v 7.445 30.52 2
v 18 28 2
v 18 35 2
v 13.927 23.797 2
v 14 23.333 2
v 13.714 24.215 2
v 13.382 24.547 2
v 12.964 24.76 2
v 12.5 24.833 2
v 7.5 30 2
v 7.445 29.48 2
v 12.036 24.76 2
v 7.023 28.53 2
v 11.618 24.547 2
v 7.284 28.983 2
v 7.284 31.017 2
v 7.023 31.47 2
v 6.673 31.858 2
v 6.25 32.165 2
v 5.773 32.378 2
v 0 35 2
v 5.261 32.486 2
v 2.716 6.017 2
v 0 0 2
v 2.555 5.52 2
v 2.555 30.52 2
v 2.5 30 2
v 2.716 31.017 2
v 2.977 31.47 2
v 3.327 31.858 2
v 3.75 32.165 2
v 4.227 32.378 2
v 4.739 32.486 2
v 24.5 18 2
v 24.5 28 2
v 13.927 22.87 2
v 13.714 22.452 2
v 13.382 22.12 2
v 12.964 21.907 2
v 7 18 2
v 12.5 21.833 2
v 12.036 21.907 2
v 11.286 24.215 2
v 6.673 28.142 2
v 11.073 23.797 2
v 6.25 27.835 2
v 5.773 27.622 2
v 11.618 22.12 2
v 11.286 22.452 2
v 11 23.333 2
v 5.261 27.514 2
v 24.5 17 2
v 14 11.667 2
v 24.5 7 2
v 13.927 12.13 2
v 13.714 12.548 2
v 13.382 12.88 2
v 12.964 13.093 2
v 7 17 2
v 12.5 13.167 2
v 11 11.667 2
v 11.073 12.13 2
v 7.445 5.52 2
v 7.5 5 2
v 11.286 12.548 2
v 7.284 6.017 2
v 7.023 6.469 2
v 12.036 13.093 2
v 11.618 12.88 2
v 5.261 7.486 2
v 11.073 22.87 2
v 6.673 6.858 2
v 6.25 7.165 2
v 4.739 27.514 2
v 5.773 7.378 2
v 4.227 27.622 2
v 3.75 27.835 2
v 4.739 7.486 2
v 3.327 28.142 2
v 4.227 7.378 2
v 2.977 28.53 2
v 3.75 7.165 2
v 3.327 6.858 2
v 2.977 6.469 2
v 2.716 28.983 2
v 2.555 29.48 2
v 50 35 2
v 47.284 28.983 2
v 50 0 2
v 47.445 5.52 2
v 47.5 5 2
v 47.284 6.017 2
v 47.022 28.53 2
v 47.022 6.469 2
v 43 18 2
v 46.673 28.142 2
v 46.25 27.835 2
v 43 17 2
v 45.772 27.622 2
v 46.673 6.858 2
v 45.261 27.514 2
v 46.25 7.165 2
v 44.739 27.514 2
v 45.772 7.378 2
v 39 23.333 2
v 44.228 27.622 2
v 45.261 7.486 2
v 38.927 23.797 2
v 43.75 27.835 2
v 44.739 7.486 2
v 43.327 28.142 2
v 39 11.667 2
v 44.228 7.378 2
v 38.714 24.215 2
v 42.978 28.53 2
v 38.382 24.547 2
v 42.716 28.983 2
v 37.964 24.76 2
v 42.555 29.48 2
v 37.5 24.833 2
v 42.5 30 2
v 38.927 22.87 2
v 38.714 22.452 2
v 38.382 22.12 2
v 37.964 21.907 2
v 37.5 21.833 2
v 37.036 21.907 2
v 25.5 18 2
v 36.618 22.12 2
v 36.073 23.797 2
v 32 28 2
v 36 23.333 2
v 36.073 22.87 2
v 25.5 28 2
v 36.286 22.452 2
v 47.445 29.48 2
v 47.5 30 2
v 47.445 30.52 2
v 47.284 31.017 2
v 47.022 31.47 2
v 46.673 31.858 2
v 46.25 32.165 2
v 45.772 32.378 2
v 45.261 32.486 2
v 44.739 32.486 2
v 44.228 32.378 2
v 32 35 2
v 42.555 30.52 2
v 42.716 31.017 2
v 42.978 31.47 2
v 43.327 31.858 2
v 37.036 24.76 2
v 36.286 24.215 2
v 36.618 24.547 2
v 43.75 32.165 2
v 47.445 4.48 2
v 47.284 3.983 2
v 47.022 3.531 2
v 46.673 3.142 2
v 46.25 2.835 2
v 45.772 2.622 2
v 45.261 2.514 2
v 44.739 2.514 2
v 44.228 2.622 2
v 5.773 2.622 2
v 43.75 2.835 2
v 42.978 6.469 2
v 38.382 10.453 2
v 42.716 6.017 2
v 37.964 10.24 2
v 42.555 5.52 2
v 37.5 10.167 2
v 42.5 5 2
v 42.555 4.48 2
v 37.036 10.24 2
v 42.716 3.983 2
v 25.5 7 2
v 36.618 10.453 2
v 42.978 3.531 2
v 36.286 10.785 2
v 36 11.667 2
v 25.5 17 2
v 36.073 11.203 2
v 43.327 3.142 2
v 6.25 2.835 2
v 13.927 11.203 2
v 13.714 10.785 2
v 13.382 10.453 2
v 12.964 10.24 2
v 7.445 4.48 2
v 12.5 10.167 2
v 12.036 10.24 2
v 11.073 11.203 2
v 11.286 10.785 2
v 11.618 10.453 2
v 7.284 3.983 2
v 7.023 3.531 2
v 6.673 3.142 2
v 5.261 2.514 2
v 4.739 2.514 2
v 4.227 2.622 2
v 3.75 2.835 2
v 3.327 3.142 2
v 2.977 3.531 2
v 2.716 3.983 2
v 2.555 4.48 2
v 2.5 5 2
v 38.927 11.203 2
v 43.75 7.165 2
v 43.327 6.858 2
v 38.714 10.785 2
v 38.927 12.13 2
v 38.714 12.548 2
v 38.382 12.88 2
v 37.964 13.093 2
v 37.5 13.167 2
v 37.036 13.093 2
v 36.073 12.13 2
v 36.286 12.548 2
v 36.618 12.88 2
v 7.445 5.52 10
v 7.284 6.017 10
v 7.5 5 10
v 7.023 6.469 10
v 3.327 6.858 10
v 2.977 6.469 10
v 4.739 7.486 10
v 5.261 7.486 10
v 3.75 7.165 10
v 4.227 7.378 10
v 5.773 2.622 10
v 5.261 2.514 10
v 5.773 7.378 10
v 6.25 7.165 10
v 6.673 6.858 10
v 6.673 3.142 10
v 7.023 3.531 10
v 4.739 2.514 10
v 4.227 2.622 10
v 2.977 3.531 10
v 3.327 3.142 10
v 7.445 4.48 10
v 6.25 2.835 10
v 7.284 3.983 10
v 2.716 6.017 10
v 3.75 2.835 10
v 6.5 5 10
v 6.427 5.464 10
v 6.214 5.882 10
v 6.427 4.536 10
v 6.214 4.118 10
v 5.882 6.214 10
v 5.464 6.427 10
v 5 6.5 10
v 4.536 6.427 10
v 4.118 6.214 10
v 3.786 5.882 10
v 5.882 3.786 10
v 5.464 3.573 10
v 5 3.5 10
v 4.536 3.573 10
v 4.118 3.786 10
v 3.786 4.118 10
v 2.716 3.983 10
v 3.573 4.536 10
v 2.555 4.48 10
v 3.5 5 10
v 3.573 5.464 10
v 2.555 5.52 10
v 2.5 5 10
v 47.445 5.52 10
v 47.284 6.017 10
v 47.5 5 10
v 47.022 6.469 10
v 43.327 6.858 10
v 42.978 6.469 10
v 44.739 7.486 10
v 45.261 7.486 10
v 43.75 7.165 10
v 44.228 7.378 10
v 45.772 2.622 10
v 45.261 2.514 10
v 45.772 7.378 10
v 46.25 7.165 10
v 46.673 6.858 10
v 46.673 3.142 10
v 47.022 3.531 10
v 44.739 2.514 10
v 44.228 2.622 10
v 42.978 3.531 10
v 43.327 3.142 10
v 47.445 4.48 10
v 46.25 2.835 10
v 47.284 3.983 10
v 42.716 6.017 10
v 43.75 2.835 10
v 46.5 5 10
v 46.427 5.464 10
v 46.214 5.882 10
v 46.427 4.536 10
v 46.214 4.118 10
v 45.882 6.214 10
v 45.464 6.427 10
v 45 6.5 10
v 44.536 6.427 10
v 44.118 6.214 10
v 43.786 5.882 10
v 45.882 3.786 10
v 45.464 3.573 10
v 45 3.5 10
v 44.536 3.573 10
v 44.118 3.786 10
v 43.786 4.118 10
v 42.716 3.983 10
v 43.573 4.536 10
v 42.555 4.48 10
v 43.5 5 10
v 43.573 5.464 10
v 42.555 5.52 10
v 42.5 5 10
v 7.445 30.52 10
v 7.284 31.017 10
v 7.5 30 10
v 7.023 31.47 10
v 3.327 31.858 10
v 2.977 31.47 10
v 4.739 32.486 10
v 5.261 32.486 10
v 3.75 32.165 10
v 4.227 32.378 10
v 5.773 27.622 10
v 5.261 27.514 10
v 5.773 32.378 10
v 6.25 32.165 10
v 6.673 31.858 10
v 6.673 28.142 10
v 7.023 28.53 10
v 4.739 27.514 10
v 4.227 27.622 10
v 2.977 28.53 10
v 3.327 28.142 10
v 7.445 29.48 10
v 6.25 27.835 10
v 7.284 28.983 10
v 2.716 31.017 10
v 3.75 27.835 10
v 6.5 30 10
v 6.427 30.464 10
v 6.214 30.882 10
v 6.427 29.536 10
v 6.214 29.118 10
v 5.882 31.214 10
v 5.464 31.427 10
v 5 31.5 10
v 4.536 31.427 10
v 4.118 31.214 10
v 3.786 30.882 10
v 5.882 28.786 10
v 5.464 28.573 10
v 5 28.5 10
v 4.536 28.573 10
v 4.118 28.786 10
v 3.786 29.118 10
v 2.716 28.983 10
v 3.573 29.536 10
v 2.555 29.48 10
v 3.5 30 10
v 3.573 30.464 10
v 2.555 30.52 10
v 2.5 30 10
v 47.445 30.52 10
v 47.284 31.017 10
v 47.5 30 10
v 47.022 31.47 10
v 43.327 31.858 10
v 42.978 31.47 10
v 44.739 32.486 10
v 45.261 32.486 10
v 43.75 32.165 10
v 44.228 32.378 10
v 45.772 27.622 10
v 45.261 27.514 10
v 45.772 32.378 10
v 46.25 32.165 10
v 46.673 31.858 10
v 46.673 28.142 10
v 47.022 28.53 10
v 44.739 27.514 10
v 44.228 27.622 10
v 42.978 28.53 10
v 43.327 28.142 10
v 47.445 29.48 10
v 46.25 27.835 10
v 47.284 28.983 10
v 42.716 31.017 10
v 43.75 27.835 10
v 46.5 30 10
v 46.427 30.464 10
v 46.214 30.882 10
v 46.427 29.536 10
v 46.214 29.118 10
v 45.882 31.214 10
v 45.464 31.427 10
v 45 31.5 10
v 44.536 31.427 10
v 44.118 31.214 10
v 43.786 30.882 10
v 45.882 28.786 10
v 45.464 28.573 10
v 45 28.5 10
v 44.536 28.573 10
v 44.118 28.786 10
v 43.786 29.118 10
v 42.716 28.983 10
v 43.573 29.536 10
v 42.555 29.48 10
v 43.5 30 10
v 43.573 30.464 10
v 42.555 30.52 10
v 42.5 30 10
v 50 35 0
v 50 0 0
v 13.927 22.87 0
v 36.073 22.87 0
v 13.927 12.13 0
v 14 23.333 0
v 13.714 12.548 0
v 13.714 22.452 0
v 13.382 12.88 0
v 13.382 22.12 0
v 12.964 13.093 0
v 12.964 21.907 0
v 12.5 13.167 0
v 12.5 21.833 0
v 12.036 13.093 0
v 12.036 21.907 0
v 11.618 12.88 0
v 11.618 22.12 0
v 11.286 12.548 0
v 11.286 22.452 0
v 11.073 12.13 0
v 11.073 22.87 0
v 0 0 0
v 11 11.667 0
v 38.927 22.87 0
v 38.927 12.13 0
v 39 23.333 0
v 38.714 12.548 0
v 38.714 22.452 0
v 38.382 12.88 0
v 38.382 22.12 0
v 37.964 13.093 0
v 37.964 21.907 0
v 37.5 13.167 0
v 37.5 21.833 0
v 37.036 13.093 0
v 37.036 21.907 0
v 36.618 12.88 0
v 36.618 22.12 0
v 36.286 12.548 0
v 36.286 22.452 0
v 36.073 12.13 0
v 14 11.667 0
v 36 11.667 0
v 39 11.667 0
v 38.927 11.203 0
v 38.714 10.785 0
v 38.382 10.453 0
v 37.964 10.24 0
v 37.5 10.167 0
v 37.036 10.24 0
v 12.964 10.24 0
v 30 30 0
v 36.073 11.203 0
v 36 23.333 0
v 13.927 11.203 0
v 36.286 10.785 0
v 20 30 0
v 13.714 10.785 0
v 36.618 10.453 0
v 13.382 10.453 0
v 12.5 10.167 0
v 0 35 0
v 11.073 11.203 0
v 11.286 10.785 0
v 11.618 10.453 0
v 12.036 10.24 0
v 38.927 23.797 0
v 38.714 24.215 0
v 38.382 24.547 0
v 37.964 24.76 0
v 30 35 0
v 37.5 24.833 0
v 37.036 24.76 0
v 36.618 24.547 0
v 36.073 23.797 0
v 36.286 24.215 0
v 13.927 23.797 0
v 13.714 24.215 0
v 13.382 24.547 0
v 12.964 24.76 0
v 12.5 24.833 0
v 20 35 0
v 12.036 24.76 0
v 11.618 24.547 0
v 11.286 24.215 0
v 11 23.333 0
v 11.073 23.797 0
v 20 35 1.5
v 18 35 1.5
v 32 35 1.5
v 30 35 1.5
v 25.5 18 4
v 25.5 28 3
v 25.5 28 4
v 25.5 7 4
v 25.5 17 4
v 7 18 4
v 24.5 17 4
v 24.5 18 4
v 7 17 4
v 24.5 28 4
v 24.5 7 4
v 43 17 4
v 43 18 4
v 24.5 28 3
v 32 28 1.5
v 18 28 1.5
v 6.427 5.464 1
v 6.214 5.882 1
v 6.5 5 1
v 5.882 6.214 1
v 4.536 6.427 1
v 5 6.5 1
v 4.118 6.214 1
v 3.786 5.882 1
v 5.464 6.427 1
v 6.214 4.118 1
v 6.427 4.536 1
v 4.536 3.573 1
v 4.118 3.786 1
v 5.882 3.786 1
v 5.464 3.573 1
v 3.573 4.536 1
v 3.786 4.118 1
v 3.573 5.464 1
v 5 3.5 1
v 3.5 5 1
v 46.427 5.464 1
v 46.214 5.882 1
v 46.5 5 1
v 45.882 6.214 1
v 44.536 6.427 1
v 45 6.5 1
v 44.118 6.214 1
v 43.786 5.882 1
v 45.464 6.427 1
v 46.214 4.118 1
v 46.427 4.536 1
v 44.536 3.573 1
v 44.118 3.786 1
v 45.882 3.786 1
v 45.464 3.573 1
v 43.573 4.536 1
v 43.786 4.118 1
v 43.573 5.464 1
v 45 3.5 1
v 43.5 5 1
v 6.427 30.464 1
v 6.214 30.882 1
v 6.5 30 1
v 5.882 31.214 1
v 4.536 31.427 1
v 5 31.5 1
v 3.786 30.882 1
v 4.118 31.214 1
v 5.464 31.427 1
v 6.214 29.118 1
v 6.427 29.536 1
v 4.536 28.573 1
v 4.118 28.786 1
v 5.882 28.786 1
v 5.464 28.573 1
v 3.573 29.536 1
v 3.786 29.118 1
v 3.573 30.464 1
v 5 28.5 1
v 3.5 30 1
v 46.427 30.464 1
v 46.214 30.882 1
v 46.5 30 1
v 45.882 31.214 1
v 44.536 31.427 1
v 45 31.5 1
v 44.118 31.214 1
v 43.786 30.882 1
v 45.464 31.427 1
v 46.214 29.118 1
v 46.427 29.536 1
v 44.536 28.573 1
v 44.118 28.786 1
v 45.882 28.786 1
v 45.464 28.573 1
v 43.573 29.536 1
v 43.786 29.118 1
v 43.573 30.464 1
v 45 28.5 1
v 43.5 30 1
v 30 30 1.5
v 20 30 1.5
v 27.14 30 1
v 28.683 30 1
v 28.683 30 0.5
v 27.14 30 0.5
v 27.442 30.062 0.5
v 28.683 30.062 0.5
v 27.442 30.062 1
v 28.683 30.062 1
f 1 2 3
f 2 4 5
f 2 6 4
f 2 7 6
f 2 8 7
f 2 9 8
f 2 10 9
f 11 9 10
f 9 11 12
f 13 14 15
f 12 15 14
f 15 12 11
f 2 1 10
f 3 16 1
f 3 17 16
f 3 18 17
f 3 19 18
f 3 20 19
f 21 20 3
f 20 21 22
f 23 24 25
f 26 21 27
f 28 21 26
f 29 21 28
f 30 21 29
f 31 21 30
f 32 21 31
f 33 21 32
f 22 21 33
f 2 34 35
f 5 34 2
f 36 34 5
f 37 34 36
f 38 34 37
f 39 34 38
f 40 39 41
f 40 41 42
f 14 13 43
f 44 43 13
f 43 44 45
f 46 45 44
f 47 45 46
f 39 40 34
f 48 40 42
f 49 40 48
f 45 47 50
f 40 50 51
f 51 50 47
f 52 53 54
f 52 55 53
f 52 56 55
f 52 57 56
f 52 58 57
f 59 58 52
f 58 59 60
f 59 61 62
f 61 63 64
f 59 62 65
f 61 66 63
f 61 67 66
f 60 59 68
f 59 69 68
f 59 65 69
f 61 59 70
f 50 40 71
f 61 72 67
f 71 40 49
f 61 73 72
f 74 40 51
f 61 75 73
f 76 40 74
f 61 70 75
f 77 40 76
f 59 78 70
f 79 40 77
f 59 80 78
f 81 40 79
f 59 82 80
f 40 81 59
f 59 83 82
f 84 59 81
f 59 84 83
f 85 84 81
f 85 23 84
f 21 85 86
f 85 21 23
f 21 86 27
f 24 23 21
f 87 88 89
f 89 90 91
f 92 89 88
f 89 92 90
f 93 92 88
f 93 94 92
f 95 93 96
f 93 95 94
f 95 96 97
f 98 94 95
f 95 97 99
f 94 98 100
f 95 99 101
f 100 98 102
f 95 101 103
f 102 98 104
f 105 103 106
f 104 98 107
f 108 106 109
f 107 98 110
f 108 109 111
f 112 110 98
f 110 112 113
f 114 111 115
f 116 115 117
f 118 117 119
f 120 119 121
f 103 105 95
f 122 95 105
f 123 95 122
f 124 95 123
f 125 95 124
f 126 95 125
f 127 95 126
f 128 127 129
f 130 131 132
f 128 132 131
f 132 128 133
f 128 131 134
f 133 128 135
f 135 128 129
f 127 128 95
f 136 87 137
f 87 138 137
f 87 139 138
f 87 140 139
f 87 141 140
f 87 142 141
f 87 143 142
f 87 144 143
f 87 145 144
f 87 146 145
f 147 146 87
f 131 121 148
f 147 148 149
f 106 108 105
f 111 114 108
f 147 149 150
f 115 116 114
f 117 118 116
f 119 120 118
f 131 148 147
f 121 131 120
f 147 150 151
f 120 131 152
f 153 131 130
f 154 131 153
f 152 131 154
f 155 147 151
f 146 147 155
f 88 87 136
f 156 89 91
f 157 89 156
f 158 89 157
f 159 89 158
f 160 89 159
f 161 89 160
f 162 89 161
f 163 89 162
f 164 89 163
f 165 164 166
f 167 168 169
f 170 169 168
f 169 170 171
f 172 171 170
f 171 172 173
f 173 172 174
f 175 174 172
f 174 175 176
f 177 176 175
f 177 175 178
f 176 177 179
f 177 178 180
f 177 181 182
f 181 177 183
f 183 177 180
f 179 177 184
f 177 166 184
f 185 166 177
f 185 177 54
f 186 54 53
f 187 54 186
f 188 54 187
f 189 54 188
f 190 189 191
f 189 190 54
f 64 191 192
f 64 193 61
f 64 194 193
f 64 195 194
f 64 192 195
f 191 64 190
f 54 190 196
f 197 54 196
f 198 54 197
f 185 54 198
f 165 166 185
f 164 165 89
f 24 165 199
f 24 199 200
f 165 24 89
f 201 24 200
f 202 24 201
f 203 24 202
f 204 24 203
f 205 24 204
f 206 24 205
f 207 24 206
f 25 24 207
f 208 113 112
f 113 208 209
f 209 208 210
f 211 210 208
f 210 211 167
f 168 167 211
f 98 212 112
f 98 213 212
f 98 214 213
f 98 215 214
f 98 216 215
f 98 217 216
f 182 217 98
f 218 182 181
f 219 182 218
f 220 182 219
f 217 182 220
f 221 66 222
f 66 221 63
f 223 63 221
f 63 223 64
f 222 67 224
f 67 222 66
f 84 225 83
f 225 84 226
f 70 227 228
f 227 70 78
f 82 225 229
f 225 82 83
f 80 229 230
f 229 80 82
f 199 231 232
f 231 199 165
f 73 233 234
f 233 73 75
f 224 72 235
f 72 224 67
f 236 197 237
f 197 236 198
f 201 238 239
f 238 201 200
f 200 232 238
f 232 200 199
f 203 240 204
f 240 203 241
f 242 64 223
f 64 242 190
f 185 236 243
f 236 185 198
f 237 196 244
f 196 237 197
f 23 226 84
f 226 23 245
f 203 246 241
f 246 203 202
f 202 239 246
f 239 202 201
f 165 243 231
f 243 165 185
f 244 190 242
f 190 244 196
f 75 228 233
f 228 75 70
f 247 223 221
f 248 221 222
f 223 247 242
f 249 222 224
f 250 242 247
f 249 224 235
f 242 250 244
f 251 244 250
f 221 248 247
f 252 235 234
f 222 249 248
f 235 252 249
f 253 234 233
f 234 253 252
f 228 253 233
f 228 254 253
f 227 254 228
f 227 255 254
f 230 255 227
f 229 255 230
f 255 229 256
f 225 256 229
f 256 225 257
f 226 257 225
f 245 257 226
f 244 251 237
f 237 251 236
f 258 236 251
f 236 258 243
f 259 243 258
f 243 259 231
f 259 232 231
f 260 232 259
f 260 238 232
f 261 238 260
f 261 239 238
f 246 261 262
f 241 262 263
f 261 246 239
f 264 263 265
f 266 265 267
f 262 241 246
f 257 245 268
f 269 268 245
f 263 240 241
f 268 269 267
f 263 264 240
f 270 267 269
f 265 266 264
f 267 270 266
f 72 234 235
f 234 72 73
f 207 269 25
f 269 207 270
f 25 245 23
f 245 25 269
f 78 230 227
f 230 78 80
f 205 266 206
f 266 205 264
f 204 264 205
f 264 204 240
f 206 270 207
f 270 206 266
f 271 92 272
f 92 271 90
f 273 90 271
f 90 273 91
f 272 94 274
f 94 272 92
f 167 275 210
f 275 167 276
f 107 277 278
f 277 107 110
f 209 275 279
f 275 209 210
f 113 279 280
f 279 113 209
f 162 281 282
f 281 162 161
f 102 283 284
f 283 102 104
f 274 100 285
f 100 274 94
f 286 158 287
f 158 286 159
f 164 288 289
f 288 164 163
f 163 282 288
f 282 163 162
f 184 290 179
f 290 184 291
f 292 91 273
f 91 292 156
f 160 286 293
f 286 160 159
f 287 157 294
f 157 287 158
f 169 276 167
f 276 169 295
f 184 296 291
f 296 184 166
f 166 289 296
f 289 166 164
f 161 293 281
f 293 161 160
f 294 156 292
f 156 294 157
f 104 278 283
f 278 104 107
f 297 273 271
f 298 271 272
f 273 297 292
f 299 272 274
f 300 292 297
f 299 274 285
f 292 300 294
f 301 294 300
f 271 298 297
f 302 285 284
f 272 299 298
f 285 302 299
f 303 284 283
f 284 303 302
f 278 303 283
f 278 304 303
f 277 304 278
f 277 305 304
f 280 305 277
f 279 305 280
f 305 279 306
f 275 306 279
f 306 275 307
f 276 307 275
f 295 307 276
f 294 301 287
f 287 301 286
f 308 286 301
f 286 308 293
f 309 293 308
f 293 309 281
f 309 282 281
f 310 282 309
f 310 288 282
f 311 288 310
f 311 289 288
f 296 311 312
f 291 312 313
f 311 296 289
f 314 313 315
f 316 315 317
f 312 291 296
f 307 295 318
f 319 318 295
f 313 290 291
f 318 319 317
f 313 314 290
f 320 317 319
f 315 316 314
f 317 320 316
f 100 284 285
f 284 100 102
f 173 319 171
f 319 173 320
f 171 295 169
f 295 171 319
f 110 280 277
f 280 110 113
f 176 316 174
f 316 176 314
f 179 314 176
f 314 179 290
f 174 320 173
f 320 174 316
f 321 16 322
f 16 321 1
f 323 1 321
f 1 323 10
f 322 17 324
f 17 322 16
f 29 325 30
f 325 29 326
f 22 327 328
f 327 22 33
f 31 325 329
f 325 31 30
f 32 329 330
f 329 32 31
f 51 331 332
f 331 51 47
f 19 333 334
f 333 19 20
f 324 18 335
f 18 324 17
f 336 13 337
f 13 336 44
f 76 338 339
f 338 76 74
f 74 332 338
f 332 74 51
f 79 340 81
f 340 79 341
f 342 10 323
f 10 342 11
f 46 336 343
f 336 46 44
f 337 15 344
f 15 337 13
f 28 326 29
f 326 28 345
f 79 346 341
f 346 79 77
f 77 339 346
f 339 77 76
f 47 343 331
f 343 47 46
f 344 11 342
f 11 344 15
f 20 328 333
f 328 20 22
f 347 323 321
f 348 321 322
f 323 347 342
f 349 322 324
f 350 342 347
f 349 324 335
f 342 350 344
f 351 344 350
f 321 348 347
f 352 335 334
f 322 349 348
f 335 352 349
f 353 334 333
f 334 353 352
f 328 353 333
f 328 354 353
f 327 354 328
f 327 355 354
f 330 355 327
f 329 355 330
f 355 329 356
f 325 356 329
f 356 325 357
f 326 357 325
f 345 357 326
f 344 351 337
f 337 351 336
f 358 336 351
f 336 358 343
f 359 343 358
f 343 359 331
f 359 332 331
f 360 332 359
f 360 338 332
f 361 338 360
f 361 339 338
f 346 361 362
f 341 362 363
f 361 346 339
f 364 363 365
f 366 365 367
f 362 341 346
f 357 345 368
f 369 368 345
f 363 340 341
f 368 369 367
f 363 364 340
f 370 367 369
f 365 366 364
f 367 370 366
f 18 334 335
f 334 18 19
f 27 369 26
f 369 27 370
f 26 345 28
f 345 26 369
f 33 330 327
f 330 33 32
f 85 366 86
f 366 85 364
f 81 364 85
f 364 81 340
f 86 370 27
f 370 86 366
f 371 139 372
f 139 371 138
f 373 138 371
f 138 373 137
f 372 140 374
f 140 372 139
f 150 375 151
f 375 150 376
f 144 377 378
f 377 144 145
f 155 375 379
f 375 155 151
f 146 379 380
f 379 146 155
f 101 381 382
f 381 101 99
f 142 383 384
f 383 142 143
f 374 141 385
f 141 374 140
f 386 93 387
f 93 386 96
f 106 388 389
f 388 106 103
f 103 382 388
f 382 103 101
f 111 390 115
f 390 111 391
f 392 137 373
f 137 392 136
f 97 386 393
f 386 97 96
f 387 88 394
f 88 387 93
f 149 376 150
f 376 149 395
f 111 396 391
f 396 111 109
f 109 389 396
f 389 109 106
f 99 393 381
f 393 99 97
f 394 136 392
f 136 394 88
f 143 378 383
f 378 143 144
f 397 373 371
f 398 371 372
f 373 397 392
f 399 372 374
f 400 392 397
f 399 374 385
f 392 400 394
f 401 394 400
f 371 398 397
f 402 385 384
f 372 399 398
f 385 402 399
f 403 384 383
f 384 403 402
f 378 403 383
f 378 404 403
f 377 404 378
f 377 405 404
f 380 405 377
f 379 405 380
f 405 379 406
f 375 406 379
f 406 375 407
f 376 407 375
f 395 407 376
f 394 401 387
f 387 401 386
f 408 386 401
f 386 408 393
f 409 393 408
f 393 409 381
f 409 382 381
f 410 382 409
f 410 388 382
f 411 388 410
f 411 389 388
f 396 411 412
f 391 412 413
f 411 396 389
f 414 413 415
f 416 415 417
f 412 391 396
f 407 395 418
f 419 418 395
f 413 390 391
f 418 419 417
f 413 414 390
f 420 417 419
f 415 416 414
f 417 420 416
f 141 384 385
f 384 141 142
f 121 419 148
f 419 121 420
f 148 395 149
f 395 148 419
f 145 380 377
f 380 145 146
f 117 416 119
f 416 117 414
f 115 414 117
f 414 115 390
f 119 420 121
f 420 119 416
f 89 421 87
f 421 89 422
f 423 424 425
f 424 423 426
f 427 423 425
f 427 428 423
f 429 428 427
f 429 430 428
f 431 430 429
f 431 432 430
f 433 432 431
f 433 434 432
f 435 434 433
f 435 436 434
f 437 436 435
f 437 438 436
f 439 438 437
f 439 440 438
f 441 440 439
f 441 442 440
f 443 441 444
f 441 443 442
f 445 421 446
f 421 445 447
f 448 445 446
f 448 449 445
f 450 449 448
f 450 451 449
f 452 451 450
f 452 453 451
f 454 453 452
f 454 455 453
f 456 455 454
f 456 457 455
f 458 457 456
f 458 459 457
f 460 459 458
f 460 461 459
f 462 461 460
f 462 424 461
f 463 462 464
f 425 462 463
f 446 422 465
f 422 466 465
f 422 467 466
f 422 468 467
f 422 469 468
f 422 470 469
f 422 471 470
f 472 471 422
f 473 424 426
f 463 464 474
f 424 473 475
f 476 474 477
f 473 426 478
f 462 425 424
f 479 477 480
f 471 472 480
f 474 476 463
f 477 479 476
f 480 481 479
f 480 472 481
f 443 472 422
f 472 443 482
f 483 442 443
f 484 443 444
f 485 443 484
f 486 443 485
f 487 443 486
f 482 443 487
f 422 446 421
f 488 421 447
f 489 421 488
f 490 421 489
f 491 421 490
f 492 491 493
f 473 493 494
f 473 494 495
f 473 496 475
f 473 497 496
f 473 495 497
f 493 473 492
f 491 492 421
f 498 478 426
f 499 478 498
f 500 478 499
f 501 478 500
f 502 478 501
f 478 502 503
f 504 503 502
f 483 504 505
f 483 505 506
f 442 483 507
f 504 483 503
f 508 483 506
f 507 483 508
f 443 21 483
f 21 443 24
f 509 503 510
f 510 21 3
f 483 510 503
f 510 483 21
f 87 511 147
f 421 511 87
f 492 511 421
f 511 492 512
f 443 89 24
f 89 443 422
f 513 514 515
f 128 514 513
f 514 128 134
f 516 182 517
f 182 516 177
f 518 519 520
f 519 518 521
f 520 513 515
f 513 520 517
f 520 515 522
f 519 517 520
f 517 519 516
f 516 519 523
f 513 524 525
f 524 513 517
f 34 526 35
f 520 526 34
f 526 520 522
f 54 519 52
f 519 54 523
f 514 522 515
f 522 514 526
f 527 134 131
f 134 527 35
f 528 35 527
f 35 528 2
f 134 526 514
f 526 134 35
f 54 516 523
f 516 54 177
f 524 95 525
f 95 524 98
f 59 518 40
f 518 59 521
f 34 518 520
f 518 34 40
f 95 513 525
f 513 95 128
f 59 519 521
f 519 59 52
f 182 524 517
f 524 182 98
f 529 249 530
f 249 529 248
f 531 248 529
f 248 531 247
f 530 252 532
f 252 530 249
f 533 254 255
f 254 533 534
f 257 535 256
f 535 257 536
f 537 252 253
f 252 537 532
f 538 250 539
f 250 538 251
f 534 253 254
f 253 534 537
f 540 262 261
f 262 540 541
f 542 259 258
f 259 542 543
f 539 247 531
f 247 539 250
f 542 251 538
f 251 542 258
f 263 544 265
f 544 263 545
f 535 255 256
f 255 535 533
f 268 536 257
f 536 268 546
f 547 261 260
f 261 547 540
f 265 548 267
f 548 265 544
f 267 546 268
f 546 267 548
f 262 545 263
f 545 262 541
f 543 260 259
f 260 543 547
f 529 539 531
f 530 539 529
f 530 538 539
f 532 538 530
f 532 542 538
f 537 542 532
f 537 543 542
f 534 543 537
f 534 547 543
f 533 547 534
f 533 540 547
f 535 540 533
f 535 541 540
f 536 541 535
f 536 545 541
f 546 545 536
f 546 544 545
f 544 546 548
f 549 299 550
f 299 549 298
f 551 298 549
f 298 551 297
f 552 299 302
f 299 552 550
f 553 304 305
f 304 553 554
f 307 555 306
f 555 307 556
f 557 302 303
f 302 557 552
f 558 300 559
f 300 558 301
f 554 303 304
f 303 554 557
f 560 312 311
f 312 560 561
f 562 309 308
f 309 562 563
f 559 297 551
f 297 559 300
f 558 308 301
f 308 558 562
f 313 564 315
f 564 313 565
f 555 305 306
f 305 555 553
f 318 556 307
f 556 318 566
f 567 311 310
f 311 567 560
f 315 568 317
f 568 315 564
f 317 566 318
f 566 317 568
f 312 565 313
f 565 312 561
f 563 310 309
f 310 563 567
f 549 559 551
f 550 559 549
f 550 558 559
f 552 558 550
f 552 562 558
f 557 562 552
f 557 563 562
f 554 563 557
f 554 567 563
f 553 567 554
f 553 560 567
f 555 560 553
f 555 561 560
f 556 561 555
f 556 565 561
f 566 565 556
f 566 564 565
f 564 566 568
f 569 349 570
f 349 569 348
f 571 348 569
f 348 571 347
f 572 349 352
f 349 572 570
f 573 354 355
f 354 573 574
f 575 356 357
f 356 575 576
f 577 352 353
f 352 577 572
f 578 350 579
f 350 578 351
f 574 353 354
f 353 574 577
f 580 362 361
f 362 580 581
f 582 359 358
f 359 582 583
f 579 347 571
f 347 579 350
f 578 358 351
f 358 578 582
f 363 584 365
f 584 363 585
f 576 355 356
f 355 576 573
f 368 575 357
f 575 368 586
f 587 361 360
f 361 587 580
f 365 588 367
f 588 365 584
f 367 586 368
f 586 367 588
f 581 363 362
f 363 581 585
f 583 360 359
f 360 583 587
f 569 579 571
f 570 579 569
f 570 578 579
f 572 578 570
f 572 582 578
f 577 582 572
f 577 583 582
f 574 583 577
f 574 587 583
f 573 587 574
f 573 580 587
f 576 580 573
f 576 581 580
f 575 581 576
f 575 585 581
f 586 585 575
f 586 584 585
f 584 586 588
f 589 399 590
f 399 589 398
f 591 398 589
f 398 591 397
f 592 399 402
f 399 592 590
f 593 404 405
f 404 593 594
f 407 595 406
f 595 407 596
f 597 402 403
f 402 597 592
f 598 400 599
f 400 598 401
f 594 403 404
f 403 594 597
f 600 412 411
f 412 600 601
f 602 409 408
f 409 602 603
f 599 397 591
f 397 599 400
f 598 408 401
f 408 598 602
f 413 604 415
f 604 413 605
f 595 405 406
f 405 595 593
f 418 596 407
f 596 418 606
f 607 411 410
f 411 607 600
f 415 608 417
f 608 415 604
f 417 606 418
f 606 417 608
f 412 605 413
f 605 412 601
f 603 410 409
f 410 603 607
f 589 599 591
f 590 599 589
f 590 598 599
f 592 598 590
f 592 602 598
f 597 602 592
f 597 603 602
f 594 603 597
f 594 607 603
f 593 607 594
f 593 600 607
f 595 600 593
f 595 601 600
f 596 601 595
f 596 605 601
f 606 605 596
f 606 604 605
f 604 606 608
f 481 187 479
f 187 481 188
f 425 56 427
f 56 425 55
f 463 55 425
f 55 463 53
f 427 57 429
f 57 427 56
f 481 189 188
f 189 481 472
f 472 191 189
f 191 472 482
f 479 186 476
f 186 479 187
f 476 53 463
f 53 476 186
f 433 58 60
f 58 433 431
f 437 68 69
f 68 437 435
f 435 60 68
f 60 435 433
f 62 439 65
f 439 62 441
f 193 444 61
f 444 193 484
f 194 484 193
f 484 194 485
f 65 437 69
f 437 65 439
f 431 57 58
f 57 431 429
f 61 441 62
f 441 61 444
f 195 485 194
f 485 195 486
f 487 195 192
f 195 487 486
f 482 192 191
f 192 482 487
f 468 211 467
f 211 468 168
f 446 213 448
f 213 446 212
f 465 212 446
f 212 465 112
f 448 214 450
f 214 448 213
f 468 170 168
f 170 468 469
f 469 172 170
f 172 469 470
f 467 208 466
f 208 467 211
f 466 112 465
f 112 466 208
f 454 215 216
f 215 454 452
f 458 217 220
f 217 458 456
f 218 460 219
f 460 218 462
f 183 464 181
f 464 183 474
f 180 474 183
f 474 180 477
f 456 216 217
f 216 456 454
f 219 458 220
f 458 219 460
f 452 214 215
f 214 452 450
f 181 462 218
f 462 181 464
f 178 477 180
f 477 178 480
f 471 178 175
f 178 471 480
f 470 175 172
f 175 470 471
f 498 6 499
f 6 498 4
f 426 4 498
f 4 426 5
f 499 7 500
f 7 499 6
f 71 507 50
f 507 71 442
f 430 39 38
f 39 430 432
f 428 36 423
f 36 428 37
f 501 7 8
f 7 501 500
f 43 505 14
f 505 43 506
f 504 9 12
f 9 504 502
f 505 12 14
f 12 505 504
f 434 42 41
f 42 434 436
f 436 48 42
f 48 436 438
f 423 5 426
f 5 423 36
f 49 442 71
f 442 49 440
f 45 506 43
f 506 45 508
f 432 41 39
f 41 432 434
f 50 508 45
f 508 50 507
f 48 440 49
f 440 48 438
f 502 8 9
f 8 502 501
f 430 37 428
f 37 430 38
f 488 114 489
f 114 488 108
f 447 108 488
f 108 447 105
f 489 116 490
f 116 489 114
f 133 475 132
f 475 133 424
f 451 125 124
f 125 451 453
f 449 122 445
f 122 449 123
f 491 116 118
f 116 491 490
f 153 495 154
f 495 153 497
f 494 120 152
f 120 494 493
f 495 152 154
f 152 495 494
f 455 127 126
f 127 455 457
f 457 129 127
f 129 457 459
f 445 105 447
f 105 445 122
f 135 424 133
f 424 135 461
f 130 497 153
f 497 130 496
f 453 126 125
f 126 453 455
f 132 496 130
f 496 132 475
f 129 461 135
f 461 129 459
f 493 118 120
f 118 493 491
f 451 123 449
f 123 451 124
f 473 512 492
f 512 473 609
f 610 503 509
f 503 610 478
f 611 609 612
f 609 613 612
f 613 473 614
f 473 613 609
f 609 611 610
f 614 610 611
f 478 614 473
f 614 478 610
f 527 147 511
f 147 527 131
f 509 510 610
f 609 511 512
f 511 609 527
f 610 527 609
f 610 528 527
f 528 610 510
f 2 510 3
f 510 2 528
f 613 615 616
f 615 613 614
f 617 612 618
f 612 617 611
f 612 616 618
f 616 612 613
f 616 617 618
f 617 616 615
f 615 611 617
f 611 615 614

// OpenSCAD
// ESP32-CAM Security Camera - Rear Cover
// For Creality Ender-3 V3
// Material: Hyper-PAL (Grey) or Hyper-PETG

// ===== PARAMETERS =====
case_length = 50;
case_width = 35;
wall_thickness = 2;

// Mounting boss dimensions
mounting_boss_diameter = 5;
mounting_hole_diameter = 3;  // M3 threaded insert
boss_height = 8;

// ===== REAR COVER =====
difference() {
    union() {
        // Main cover plate
        cube([case_length, case_width, wall_thickness]);

        // Mounting bosses with threaded insert holes
        boss_positions = [
            [5, 5],
            [case_length - 5, 5],
            [5, case_width - 5],
            [case_length - 5, case_width - 5]
        ];

        for (pos = boss_positions) {
            translate([pos[0], pos[1], wall_thickness])
                cylinder(h=boss_height, d=mounting_boss_diameter, $fn=30);
        }

        // Slide-in clips for case attachment (top edge)
        // Left clip
        translate([wall_thickness + 2, case_width/2 - 4, 0])
            cube([4, 8, wall_thickness]);

        // Right clip
        translate([case_length - wall_thickness - 6, case_width/2 - 4, 0])
            cube([4, 8, wall_thickness]);

        // Center support ribs (prevent warping)
        translate([case_length/2 - 0.5, wall_thickness + 5, wall_thickness])
            cube([1, case_width - 2*wall_thickness - 10, 2]);

        translate([wall_thickness + 5, case_width/2 - 0.5, wall_thickness])
            cube([case_length - 2*wall_thickness - 10, 1, 2]);
    }

    // Cable routing slot (for USB cable exit)
    translate([case_length/2 - 5, case_width - 5, -1])
        cube([10, 6, wall_thickness+2]);

    // Strain relief groove (around cable slot)
    translate([case_length/2 - 7, case_width - 7, wall_thickness - 0.5])
        cube([14, 8, 1.5]);

    // M3 threaded insert holes (for heat-set inserts)
    boss_positions = [
        [5, 5],
        [case_length - 5, 5],
        [5, case_width - 5],
        [case_length - 5, case_width - 5]
    ];

    for (pos = boss_positions) {
        translate([pos[0], pos[1], wall_thickness - 1])
            cylinder(h=boss_height + 2, d=mounting_hole_diameter, $fn=20);
    }

    // Ventilation holes (4 holes for airflow)
    vent_positions = [
        [case_length/4, case_width/3],
        [3*case_length/4, case_width/3],
        [case_length/4, 2*case_width/3],
        [3*case_length/4, 2*case_width/3]
    ];

    for (pos = vent_positions) {
        translate([pos[0], pos[1], -1])
            cylinder(h=wall_thickness+2, d=3, $fn=20);
    }
}

// Add text label (optional - camera number)
translate([case_length/2, case_width - 10, 0.5])
    linear_extrude(height=0.5)
    text("#1", size=5, font="Arial:style=Bold", halign="center");

// Note: Change "#1" to "#2", "#3", "#4" for different cameras
// This helps identify which camera during assembly/maintenance
